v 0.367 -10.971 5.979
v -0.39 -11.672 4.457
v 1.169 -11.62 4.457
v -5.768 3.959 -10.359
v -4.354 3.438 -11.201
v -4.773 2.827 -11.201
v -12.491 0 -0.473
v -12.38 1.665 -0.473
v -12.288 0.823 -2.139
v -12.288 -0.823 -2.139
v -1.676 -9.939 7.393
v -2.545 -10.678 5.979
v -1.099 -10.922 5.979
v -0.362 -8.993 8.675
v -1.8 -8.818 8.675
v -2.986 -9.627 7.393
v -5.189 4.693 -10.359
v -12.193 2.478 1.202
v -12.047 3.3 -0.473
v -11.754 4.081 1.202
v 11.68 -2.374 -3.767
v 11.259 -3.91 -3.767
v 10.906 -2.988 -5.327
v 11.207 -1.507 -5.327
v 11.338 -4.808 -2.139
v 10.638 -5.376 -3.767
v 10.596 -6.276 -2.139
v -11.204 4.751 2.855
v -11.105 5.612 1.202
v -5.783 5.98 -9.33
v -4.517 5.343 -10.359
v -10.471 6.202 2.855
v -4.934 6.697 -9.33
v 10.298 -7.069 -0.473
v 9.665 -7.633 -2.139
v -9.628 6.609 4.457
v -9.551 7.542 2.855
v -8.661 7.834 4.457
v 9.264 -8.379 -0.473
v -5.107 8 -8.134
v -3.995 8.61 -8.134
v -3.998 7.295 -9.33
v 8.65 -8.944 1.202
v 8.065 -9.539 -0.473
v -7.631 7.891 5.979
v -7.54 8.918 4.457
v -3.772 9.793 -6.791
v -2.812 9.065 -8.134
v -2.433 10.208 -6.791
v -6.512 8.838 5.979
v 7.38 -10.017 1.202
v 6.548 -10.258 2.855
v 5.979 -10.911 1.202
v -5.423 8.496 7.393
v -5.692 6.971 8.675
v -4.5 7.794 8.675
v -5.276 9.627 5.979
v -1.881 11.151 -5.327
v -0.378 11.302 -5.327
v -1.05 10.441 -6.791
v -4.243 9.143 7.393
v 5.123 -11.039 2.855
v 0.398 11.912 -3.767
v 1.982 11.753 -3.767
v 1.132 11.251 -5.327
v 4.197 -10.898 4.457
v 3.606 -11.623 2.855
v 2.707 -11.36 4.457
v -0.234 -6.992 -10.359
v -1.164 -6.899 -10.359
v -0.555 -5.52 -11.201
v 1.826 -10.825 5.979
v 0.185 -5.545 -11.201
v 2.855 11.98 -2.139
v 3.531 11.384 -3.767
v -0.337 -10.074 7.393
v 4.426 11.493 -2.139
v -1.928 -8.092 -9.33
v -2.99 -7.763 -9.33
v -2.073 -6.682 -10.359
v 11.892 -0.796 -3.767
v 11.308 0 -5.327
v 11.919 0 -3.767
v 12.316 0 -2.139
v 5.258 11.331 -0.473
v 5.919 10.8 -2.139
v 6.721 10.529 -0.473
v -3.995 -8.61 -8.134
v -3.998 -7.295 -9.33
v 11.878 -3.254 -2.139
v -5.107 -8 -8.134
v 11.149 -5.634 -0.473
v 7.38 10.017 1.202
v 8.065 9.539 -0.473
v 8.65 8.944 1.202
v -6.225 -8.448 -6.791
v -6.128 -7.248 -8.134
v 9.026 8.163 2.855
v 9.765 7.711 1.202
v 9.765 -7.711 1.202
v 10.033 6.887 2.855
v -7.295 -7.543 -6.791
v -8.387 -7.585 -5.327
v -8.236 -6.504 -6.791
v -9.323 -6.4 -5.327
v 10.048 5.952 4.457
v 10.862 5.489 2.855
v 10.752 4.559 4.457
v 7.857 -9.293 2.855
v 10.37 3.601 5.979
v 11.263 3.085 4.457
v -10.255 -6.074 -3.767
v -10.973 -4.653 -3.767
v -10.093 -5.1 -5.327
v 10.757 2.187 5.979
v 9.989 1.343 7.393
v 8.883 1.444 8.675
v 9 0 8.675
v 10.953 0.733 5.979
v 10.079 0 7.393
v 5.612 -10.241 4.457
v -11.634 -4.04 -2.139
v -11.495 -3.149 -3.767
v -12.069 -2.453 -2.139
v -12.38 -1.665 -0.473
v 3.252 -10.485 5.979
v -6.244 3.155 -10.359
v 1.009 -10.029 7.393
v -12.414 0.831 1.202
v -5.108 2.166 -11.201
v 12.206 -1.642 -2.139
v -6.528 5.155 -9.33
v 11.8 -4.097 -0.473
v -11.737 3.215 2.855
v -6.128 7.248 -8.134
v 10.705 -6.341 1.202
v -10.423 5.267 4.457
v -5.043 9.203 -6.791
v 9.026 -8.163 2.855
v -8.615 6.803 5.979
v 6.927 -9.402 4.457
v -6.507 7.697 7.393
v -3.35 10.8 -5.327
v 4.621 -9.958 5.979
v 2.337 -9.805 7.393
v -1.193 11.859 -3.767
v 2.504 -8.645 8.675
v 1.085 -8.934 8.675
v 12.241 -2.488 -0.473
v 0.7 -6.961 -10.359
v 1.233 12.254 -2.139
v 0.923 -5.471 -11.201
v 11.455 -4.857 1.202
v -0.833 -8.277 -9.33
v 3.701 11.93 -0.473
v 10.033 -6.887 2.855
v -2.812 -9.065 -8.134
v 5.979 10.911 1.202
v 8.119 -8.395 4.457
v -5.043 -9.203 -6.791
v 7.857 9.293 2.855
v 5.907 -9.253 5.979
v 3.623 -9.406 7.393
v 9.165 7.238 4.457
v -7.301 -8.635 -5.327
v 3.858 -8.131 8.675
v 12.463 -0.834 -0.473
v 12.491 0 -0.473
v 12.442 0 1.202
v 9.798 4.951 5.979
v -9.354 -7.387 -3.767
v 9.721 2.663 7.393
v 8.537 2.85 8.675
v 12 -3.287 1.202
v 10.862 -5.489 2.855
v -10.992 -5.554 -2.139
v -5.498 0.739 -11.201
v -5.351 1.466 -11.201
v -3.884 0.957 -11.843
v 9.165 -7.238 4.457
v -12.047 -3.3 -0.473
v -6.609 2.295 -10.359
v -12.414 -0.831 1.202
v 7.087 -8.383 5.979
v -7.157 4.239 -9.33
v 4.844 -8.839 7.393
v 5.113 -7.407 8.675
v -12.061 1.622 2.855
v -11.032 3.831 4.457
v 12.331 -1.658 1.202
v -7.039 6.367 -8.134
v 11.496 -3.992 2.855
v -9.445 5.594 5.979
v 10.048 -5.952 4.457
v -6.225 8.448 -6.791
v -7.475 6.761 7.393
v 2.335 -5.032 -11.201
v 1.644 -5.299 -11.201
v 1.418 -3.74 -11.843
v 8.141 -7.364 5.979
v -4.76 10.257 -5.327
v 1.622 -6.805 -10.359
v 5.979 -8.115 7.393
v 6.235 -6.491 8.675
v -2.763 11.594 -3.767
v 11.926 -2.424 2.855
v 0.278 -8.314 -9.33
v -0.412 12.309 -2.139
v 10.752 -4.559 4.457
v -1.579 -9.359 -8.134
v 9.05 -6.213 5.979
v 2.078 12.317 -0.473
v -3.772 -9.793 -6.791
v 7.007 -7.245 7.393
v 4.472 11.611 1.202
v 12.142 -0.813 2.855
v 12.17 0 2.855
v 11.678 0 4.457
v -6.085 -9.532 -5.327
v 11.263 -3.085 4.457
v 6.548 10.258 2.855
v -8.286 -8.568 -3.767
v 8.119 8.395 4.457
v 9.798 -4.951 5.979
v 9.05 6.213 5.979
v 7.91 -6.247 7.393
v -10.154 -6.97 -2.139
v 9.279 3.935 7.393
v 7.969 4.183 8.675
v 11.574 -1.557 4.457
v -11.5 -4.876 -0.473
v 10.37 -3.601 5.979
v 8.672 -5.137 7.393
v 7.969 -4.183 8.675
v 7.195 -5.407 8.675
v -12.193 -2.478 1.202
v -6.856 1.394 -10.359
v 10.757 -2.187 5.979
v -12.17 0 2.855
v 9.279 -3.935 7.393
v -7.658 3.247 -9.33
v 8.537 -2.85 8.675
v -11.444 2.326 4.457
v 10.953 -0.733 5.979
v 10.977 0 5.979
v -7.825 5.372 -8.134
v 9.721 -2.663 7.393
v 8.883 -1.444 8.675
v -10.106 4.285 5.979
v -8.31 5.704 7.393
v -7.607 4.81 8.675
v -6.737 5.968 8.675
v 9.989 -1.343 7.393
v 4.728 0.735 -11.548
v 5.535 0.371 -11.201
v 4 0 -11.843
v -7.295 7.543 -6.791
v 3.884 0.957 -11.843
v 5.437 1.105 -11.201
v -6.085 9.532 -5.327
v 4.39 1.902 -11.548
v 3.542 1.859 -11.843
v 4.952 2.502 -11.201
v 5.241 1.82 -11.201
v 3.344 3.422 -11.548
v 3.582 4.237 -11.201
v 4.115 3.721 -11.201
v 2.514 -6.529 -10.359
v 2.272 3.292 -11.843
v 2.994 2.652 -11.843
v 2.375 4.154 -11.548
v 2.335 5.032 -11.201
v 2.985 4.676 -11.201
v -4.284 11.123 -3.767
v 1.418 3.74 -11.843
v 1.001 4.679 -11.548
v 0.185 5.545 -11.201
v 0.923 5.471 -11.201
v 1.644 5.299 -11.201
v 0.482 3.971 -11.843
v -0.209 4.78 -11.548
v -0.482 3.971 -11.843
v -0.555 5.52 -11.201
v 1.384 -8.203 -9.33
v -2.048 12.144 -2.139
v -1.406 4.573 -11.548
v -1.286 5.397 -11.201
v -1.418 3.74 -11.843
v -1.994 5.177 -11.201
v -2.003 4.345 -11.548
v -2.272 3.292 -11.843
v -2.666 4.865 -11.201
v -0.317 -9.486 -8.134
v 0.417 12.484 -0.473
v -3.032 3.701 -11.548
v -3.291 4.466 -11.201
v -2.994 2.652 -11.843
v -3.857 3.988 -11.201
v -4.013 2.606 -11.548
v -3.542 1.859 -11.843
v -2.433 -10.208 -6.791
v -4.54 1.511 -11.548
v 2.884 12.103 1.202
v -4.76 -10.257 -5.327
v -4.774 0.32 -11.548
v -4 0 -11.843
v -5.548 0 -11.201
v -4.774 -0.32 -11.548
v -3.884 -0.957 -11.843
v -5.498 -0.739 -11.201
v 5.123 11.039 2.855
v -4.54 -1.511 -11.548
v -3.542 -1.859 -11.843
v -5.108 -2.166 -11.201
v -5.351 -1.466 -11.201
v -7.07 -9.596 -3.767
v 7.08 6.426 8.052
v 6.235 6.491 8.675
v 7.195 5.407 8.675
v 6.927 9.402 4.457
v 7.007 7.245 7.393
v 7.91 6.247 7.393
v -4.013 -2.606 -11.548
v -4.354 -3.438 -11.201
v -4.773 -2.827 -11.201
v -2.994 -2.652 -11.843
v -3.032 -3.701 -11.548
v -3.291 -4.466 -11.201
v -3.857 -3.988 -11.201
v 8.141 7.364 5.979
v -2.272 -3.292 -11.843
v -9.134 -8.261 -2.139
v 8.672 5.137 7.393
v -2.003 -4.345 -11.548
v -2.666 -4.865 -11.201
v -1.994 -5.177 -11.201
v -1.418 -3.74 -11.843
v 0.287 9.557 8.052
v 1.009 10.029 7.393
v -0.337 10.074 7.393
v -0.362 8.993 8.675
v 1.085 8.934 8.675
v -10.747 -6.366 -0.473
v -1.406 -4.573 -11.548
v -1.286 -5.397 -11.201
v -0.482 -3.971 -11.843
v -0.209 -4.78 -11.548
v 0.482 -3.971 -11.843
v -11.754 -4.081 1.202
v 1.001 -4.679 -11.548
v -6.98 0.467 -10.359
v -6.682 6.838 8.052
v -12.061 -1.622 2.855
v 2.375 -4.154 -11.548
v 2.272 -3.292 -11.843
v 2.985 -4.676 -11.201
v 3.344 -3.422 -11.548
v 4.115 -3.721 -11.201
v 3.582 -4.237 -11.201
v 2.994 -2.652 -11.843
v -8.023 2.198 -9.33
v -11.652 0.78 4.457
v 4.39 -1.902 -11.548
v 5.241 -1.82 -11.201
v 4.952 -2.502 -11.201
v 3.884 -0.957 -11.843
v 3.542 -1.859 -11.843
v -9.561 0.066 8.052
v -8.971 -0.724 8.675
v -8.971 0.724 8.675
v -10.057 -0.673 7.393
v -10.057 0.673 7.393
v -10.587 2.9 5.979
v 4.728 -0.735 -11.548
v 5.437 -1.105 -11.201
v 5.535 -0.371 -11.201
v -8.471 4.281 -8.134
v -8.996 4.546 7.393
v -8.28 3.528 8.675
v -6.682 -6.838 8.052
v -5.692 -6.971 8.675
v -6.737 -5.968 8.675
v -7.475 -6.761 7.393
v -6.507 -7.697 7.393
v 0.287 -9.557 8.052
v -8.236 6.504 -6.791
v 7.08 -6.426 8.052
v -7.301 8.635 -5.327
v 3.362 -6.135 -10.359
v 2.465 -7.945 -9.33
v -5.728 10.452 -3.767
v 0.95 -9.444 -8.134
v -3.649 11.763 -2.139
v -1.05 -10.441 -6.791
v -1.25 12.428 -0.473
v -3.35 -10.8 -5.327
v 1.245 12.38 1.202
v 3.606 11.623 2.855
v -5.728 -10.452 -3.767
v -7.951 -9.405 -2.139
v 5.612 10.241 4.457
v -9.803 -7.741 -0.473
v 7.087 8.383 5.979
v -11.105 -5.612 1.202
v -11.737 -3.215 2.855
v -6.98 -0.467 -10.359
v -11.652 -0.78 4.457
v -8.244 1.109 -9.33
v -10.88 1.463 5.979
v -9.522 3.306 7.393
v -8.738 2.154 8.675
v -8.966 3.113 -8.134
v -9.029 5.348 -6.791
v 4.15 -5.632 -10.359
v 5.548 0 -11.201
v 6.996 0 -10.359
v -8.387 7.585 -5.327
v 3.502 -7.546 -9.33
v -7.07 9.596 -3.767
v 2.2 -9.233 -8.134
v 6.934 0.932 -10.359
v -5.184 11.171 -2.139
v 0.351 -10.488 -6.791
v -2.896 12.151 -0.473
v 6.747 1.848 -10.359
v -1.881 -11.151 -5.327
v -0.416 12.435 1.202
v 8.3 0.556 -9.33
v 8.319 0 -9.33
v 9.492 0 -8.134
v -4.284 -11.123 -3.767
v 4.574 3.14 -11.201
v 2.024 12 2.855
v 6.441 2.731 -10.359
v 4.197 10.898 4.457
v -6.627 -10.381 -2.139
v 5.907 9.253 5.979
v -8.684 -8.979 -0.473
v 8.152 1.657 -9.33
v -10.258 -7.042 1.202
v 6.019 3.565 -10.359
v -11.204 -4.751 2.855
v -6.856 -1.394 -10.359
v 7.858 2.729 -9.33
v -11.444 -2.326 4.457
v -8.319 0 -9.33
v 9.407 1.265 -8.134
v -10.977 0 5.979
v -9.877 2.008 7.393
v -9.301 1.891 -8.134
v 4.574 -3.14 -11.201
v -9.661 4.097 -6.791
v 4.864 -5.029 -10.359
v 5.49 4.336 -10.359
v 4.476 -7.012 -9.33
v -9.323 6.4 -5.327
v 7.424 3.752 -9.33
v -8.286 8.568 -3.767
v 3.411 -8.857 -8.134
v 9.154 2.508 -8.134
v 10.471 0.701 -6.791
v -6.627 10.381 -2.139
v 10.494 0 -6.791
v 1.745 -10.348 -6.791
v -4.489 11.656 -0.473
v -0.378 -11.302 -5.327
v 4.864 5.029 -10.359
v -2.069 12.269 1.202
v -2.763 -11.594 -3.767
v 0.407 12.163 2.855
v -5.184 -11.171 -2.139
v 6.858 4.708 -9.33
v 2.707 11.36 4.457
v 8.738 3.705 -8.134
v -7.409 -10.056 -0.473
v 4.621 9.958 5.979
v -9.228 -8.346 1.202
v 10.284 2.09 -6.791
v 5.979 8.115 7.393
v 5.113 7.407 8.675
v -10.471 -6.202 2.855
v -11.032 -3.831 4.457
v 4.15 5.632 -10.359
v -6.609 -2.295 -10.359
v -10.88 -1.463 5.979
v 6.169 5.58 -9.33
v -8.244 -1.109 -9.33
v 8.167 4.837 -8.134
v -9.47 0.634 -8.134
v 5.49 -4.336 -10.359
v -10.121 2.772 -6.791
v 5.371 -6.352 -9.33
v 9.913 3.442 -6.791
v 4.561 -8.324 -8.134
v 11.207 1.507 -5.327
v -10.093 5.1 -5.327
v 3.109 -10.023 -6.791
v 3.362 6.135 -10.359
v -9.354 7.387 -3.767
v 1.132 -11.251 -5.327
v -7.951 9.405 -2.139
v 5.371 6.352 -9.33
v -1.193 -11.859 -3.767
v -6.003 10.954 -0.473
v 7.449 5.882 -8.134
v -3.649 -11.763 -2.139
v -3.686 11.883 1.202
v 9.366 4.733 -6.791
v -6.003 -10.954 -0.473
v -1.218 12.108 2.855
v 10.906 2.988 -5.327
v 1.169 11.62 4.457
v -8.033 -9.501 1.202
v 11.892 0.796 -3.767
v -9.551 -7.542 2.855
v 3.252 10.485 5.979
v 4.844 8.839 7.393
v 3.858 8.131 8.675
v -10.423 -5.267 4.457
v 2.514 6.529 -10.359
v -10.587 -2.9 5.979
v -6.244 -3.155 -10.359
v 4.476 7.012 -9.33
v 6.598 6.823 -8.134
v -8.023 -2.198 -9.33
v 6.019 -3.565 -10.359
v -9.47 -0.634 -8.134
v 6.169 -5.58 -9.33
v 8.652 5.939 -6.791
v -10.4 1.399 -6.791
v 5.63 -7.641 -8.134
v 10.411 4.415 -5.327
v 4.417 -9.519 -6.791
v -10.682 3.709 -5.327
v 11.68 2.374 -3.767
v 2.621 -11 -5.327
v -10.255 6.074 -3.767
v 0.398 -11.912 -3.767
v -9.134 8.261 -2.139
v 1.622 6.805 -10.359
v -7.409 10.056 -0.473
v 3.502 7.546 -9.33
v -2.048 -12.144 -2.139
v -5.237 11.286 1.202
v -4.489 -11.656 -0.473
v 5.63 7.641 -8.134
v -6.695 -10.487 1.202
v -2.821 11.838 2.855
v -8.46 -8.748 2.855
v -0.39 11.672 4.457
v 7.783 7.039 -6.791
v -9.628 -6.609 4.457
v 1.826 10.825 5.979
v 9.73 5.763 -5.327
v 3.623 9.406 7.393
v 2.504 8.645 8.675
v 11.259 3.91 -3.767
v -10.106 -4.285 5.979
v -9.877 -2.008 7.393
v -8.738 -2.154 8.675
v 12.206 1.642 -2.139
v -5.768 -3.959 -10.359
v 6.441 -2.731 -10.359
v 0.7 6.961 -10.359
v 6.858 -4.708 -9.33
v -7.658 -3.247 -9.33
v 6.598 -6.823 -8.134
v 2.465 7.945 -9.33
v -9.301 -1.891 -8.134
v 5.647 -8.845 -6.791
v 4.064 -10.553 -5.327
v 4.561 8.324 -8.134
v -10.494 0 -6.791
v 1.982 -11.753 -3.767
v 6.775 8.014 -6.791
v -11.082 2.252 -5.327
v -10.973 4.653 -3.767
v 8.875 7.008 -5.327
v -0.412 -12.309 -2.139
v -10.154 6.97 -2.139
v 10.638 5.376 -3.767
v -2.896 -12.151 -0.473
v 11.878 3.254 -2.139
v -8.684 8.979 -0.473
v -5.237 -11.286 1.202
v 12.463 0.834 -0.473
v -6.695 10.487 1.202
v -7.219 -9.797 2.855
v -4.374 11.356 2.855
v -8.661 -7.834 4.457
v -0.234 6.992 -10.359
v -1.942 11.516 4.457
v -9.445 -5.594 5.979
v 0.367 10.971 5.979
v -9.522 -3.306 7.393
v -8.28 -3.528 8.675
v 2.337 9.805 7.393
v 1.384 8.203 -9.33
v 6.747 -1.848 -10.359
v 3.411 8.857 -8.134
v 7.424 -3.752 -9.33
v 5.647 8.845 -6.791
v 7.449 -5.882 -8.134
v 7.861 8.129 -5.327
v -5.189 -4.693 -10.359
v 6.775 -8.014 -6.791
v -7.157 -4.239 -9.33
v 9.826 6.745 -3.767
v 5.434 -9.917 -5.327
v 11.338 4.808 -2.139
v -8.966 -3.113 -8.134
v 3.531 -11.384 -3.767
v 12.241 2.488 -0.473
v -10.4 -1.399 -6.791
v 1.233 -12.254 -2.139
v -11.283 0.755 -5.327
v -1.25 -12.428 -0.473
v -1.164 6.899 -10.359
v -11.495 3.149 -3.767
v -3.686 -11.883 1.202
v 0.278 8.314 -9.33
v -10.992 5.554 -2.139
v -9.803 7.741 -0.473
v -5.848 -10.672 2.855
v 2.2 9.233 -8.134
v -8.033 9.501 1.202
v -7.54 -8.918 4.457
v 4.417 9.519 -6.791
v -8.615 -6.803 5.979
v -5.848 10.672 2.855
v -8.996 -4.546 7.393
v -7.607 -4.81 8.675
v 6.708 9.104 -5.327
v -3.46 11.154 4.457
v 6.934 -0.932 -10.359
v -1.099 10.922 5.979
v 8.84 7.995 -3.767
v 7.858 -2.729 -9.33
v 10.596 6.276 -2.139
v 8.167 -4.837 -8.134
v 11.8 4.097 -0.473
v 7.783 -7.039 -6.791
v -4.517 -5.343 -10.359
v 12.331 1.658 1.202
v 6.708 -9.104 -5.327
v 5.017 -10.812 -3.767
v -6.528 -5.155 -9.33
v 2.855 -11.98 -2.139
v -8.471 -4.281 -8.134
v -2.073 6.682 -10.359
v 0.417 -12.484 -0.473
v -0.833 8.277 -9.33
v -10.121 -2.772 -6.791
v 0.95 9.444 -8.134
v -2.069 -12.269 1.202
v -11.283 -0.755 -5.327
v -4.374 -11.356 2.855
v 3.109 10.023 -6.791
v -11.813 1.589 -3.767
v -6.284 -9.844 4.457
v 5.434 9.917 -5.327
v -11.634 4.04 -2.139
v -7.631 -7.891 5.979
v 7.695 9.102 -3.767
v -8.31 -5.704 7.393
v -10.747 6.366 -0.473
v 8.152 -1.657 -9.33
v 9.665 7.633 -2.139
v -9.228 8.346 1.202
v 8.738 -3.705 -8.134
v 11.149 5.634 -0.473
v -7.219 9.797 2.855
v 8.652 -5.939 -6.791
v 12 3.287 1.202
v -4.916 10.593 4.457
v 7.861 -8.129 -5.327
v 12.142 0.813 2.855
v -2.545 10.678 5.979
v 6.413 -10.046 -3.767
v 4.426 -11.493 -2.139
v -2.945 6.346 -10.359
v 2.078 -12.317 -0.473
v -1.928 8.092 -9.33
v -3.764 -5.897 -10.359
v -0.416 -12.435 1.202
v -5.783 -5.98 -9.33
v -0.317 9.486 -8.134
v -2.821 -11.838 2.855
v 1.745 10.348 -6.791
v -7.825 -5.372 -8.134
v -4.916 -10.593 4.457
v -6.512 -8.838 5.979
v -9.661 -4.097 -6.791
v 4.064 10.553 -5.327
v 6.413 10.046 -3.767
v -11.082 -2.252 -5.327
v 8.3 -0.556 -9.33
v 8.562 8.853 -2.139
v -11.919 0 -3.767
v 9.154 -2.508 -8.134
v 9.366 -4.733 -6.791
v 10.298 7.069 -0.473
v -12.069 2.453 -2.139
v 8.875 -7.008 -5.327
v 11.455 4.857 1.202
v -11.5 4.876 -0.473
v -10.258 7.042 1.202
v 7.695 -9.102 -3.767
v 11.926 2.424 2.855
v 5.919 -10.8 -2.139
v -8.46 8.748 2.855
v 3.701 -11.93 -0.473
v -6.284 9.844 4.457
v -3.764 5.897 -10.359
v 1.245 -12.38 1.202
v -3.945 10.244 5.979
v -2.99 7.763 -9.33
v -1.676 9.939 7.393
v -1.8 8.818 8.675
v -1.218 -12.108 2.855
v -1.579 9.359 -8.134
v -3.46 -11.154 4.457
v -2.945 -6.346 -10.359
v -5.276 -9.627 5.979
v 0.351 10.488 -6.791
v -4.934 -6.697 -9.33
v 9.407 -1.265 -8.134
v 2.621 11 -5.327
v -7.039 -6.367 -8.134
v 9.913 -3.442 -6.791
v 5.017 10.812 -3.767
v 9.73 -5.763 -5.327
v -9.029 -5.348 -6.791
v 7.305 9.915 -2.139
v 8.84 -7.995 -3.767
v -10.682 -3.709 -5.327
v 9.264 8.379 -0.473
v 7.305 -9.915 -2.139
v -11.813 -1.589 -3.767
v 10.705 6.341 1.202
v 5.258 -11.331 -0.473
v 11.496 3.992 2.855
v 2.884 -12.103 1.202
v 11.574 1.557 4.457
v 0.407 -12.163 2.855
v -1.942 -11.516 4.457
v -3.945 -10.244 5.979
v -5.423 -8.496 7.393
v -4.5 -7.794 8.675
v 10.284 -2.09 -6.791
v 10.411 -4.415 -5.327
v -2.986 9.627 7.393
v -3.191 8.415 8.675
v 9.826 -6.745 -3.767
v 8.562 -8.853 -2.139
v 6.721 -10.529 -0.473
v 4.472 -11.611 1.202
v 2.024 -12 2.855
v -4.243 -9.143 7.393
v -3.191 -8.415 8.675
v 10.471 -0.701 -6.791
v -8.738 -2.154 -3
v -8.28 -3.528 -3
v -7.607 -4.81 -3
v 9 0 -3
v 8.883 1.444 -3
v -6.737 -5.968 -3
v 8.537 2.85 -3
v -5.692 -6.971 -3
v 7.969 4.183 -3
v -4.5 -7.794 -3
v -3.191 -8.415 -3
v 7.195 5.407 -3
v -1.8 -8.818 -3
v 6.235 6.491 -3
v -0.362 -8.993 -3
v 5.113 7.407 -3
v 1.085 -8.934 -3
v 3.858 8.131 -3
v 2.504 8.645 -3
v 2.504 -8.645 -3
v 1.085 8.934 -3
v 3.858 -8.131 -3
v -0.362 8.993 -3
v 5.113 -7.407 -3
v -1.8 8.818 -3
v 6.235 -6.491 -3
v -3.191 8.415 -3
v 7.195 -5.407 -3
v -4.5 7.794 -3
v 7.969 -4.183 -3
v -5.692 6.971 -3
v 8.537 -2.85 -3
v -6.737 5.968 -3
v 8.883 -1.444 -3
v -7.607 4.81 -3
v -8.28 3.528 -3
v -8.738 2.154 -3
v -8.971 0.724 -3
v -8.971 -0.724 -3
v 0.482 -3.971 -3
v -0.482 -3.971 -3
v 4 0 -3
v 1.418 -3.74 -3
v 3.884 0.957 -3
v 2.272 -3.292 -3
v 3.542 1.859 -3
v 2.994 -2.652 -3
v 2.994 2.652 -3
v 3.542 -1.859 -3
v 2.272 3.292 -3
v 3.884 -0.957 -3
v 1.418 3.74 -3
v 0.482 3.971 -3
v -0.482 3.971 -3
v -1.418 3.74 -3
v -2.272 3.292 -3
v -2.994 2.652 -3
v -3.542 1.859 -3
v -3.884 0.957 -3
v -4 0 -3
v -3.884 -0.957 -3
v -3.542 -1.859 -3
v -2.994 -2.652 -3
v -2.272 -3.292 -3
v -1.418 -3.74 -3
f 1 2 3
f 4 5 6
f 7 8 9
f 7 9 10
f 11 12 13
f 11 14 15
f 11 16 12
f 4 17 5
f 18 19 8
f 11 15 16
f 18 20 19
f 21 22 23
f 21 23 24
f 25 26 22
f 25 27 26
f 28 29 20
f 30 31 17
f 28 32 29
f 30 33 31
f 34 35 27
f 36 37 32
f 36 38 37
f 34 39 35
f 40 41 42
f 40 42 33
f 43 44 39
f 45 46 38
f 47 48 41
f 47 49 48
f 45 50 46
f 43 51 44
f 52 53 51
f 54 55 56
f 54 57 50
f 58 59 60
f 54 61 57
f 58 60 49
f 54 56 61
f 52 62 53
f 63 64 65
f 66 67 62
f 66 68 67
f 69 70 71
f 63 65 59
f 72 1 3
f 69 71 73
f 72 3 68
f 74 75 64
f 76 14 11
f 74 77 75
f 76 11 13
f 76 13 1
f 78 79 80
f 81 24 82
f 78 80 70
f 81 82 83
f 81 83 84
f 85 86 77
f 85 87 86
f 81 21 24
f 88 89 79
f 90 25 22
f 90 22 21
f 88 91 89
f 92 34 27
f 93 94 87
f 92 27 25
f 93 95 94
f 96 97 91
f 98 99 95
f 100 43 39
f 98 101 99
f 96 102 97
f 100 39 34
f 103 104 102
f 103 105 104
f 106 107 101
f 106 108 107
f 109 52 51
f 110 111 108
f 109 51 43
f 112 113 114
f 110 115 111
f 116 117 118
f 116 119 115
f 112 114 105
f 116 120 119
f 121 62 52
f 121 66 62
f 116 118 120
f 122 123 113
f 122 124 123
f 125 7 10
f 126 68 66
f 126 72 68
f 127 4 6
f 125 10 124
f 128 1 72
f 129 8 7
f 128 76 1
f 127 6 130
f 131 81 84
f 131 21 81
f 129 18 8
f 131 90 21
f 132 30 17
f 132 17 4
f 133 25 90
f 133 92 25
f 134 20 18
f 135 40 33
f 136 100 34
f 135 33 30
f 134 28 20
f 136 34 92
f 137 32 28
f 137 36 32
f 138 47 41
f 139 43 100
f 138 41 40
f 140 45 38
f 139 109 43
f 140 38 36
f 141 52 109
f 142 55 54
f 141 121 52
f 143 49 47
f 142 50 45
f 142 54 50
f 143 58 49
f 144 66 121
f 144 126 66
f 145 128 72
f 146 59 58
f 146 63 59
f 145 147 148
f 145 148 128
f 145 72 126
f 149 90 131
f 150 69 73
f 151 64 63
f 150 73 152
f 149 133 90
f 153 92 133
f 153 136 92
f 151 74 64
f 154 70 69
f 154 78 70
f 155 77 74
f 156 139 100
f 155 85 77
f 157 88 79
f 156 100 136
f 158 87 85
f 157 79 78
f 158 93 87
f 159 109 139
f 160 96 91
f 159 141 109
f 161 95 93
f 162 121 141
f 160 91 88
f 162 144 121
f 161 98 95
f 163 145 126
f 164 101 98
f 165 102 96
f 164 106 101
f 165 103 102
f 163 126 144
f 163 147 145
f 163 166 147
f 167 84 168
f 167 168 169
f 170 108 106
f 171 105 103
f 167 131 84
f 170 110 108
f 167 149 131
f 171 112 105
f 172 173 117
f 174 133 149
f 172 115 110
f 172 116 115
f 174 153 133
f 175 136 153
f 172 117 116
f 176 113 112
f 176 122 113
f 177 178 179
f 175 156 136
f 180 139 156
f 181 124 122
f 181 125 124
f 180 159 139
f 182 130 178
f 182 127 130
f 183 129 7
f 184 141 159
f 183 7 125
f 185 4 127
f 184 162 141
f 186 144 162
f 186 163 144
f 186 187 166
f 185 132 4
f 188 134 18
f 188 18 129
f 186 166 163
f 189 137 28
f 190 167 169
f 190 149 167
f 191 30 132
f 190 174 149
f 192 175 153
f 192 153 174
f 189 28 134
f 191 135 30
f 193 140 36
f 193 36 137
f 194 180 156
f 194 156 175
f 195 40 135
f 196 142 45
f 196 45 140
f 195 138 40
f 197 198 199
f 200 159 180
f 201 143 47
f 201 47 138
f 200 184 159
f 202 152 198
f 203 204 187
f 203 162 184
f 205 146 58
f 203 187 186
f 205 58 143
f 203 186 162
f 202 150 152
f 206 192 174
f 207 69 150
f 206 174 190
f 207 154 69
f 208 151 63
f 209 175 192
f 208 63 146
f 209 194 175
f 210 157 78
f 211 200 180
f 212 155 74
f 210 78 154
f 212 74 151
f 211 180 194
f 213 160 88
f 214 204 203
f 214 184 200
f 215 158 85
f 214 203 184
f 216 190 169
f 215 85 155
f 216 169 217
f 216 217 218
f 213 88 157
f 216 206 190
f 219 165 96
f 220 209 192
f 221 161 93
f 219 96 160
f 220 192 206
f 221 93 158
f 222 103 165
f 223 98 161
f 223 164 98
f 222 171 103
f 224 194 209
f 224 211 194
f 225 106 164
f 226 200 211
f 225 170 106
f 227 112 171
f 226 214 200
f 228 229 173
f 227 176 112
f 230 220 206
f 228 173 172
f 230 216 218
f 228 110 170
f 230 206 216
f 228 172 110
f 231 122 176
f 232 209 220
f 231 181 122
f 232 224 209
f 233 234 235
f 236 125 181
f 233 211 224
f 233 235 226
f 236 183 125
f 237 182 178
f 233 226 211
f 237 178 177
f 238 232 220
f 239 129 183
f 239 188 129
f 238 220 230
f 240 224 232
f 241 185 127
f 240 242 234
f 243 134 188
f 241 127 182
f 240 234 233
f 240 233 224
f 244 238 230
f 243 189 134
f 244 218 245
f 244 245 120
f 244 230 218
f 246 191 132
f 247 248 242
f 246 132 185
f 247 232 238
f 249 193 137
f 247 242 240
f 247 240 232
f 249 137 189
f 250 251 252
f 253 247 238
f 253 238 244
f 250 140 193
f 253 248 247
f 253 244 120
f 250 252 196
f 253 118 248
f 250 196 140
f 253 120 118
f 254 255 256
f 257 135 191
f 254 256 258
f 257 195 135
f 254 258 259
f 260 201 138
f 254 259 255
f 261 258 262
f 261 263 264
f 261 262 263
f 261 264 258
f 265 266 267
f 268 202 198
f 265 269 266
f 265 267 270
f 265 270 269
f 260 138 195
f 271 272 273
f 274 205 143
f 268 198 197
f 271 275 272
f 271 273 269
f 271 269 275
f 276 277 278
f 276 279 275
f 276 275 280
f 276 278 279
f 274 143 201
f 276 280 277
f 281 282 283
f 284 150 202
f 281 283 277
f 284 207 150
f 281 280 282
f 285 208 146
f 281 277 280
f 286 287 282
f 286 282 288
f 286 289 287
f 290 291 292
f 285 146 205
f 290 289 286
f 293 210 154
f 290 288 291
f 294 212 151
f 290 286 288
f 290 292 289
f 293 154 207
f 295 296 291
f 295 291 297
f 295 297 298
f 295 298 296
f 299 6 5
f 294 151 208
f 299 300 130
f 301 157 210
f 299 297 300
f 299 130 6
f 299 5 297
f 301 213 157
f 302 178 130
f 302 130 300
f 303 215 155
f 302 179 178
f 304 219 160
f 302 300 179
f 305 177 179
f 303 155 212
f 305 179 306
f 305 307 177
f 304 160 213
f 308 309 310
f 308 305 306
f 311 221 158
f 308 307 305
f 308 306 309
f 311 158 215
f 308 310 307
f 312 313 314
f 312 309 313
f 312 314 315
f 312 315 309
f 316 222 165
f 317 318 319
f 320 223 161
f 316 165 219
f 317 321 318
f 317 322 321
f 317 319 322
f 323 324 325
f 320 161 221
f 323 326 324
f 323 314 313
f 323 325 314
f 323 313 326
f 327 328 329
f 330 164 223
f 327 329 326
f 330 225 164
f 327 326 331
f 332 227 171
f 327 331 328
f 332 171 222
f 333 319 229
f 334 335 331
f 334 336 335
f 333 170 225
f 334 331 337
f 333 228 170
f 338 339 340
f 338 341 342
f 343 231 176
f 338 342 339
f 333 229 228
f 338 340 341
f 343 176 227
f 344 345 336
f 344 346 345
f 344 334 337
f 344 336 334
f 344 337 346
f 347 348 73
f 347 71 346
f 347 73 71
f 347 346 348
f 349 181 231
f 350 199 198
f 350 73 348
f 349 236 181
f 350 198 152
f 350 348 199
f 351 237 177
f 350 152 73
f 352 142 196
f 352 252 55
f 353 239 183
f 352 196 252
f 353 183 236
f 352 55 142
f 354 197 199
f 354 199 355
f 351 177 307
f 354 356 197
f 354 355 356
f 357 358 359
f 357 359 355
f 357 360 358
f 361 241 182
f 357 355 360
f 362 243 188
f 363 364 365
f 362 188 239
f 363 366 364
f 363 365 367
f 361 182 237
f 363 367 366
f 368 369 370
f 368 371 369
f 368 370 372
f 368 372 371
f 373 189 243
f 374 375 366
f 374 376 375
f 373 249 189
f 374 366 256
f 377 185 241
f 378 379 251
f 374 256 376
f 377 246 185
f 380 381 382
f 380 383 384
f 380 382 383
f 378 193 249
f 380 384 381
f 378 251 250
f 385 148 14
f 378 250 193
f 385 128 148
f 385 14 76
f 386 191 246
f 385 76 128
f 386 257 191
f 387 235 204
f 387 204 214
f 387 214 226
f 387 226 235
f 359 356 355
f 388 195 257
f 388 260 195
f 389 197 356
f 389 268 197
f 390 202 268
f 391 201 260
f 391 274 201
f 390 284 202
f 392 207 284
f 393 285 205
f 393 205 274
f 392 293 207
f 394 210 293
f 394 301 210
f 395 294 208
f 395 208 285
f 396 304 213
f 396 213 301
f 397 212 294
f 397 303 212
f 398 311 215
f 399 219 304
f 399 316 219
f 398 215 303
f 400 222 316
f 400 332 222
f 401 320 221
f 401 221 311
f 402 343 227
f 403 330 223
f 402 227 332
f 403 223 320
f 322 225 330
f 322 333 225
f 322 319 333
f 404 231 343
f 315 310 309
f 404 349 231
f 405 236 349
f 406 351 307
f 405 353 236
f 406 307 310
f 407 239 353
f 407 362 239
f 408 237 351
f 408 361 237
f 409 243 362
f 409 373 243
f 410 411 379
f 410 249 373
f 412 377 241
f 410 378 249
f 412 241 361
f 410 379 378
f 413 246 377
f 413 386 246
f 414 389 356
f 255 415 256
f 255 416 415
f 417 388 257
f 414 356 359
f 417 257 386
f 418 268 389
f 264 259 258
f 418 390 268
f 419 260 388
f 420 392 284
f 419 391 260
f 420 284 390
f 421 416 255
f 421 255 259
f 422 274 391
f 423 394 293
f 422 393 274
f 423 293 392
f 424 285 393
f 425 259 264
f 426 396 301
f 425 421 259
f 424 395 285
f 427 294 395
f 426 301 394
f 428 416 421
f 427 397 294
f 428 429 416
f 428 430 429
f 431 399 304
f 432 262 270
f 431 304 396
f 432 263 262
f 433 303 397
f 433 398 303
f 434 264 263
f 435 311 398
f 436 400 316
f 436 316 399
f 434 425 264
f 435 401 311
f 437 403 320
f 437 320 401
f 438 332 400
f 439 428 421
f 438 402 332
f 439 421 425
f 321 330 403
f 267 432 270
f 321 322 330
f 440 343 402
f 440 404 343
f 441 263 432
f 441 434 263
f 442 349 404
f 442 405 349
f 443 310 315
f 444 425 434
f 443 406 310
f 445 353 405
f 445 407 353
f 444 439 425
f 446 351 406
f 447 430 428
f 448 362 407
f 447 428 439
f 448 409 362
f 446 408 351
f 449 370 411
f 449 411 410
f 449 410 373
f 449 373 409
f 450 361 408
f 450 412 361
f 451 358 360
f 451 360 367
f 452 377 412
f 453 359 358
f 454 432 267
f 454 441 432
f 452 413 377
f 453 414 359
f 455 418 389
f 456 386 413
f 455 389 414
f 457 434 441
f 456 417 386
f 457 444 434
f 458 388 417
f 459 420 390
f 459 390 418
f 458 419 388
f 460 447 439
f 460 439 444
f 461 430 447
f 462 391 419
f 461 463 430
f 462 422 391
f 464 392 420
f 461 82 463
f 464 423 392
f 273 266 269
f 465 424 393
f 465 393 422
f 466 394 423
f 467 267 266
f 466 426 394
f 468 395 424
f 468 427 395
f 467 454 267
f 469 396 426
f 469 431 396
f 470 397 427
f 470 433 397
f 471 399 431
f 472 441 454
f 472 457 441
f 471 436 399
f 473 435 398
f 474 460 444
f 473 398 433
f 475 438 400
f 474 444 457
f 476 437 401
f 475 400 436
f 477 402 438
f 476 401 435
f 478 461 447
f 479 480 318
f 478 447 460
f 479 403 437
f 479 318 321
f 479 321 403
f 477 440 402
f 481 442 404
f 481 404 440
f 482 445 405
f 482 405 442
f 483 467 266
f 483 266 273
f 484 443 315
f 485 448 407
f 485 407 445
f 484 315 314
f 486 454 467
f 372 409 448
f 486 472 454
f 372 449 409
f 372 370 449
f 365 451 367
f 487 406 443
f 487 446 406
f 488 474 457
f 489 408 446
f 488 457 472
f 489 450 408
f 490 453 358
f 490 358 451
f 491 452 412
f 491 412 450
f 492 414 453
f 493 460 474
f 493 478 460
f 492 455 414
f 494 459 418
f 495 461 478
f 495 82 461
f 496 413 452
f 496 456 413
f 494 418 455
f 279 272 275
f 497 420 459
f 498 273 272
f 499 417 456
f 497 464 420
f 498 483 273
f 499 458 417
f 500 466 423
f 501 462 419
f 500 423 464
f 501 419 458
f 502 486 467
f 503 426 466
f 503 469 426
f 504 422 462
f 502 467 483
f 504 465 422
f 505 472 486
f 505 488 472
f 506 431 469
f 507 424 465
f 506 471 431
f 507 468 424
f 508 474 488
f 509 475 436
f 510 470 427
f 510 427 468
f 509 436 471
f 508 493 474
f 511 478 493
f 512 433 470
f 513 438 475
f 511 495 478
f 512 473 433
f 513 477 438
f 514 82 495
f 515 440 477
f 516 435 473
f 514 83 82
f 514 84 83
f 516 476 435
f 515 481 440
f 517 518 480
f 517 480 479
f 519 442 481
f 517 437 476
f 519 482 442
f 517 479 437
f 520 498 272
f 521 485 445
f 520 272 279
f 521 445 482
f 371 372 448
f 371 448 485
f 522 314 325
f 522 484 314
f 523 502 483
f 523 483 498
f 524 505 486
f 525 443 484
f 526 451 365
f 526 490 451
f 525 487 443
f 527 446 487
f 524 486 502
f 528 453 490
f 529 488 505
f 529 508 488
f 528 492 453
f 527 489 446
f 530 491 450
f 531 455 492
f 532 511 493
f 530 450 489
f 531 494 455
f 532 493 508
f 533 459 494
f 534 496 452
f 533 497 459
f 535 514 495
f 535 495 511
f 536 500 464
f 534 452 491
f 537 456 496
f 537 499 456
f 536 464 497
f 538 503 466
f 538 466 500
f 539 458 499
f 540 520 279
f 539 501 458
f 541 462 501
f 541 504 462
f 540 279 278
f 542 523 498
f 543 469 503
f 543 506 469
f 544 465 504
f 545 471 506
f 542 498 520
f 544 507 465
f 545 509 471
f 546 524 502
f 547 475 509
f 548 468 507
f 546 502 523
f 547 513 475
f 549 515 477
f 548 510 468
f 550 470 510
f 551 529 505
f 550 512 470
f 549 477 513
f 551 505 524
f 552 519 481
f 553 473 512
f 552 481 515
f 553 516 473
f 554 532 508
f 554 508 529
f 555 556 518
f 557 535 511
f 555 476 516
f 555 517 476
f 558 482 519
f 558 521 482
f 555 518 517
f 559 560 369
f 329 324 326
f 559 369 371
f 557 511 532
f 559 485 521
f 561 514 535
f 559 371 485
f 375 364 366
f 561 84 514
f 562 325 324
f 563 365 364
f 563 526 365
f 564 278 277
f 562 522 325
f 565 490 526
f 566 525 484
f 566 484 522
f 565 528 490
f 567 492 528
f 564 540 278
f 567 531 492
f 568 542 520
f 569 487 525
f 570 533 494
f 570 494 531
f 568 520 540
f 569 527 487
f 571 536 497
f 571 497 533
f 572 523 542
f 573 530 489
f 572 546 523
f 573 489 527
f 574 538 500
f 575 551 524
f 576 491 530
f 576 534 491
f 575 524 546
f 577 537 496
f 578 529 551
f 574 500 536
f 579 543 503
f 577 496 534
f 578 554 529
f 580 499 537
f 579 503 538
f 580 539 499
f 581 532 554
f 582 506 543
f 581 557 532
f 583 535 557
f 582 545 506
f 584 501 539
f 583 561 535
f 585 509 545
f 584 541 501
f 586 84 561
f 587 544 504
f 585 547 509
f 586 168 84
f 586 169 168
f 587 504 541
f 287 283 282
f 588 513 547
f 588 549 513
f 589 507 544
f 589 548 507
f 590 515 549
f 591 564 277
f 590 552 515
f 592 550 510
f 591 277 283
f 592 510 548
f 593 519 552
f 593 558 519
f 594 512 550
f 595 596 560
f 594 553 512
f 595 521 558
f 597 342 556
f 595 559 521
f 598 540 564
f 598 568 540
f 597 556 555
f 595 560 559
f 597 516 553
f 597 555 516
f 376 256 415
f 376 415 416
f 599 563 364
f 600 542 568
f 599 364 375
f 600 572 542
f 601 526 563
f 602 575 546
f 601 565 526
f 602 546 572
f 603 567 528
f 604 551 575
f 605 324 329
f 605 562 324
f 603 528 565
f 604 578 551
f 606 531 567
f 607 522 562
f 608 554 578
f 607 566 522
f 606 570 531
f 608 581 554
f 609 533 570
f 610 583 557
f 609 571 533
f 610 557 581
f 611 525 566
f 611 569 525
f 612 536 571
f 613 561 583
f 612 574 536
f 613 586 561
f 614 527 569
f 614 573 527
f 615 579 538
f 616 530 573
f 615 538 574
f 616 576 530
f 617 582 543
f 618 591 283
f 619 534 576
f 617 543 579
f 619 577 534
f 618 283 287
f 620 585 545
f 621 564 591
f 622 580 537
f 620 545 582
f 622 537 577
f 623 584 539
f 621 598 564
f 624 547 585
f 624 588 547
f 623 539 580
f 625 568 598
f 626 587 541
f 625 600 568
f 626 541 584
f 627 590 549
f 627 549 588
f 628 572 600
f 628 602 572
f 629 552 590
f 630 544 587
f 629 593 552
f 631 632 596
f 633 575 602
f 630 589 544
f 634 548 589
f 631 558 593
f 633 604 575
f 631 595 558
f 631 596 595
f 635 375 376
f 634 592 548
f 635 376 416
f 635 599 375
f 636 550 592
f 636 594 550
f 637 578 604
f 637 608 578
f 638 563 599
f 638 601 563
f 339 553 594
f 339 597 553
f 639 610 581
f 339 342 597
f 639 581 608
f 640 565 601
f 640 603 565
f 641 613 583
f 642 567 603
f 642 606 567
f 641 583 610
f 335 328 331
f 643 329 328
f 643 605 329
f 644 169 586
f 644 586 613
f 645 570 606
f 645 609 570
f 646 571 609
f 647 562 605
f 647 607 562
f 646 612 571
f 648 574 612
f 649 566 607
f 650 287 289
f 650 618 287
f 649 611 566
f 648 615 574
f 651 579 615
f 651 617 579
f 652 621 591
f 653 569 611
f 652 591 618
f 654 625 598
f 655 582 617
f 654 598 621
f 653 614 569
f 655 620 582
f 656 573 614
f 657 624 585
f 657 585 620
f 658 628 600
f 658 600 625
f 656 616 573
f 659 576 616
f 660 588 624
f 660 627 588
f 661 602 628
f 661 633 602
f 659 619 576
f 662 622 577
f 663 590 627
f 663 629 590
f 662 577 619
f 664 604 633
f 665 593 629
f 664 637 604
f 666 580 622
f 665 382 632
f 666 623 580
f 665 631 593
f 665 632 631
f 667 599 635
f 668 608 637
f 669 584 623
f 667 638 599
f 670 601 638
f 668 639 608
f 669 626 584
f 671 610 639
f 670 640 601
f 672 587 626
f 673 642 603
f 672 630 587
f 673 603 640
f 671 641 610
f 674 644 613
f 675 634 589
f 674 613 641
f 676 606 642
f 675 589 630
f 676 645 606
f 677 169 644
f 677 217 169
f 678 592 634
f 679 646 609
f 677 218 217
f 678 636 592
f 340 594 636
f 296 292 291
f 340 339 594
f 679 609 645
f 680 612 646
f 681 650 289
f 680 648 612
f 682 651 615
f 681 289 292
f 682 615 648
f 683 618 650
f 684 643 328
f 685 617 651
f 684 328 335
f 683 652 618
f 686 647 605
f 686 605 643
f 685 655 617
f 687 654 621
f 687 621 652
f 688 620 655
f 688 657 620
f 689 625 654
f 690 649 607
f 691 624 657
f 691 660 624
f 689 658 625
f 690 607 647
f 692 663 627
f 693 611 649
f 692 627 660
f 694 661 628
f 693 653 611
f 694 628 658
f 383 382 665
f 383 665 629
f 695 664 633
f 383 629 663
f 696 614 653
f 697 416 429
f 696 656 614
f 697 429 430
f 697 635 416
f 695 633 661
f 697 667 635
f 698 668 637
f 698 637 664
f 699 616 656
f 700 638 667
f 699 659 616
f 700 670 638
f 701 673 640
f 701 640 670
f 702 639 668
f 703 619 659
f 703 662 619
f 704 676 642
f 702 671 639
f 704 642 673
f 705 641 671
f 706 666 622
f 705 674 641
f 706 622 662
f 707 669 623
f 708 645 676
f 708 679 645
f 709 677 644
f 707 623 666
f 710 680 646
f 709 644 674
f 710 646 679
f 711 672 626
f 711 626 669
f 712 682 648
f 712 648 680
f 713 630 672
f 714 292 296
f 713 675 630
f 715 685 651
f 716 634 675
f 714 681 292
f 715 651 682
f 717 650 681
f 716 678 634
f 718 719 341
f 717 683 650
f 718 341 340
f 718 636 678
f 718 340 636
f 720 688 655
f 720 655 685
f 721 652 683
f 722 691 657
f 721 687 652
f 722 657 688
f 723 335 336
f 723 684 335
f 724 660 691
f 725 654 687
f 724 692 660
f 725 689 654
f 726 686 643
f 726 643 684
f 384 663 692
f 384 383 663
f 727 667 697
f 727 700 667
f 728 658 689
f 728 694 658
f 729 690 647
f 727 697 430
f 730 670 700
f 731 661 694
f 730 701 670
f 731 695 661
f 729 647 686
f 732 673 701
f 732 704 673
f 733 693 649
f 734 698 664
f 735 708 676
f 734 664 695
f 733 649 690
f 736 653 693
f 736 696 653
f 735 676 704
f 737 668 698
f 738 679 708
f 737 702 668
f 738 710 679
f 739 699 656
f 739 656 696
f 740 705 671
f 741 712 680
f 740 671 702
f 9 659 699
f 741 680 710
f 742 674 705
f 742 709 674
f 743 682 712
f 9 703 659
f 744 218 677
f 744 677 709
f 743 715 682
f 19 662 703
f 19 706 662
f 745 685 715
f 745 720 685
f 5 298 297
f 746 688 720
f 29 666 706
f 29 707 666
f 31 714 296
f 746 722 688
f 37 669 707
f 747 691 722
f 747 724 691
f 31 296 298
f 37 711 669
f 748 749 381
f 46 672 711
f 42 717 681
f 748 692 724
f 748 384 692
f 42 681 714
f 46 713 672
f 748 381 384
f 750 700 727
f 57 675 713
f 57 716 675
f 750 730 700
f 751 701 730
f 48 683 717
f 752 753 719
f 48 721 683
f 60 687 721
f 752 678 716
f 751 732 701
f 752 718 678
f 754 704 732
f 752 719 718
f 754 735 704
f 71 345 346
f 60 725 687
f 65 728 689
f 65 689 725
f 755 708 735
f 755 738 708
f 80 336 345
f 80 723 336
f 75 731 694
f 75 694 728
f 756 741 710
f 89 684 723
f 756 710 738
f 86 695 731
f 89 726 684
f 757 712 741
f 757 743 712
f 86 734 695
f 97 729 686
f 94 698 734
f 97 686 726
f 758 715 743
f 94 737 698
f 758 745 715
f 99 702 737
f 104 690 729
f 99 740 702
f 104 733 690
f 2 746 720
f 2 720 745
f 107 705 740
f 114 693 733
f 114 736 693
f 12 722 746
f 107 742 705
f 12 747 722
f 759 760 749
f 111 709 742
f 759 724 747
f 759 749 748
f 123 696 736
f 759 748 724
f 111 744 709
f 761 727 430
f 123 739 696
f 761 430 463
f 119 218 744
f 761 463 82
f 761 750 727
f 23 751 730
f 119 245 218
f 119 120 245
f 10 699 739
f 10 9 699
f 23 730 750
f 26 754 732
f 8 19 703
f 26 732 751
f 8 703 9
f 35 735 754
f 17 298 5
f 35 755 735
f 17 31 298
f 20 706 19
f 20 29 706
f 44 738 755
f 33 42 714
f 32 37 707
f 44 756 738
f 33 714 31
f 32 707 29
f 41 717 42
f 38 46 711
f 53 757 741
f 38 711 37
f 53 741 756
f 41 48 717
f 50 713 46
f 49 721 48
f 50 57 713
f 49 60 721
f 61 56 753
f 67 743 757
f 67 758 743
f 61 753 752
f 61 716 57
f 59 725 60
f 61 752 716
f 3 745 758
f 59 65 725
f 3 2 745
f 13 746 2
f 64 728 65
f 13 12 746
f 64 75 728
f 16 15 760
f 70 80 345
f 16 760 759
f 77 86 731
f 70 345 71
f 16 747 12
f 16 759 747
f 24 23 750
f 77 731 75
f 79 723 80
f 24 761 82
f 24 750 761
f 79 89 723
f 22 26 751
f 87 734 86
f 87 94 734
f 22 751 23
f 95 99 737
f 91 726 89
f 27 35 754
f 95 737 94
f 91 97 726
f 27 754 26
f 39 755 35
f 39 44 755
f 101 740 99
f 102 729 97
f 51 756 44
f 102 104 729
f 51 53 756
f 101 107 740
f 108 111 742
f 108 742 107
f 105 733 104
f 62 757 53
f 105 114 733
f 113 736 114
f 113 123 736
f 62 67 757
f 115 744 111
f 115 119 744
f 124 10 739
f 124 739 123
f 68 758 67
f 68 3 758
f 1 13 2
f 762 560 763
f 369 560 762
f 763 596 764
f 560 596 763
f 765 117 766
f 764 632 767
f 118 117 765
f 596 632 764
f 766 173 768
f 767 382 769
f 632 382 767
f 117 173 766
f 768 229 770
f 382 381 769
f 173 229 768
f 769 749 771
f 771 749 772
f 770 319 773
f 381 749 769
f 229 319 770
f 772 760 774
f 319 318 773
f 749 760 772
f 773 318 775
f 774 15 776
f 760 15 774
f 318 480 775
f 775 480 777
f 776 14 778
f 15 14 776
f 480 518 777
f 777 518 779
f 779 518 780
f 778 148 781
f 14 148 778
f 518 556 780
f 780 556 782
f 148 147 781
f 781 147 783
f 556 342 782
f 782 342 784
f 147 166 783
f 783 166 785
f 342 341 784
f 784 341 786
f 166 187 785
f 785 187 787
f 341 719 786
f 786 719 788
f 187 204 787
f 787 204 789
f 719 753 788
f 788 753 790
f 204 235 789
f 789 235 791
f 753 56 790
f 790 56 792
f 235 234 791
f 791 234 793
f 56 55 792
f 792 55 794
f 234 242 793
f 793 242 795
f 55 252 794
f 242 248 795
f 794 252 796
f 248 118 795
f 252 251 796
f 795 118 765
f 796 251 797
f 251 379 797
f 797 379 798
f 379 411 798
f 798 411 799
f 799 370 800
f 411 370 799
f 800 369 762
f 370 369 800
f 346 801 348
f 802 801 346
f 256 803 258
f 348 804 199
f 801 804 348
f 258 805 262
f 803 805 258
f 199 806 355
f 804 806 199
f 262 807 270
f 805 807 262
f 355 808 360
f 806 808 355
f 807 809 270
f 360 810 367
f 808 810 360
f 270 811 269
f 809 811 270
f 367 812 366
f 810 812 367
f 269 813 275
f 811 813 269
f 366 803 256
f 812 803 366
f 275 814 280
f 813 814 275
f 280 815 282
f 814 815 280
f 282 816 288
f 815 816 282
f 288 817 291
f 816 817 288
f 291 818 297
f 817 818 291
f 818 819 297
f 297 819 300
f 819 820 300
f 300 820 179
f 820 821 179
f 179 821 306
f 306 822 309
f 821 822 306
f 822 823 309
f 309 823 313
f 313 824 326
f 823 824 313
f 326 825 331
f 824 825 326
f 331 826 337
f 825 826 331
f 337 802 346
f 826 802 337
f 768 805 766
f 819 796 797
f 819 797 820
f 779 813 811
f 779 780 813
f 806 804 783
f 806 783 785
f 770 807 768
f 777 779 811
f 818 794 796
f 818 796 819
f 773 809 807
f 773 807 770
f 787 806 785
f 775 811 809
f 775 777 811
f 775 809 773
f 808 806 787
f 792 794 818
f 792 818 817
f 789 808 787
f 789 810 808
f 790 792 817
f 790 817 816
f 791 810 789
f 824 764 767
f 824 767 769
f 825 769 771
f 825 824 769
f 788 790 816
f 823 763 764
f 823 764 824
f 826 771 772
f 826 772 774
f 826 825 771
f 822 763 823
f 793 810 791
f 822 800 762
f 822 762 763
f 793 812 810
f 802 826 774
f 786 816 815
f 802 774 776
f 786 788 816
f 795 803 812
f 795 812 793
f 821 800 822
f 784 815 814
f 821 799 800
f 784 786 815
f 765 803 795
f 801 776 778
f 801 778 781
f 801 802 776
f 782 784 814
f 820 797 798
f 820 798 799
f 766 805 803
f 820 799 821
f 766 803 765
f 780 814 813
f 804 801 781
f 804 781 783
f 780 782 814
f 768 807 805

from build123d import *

# Parameters (mm, degrees)
CYLINDER001_R     = 9
CYLINDER001_DEPTH = 15
CYLINDER_R        = 4
CYLINDER_DEPTH    = 30


with BuildPart() as cylinder001:
    # Cylinder001 → Cylinder001 (new body)
    with BuildSketch(Plane.XY.offset(-3)):
        Circle(CYLINDER001_R)
    extrude(amount=CYLINDER001_DEPTH)


with BuildPart() as fusion:
    # Cylinder → Cylinder (new body)
    with BuildSketch(Plane.XY.offset(-15)):
        Circle(CYLINDER_R)
    extrude(amount=CYLINDER_DEPTH)

    # Fusion: union Cylinder001
    add(cylinder001.part)


with BuildPart() as final:
    # Sphere → Sphere (revolve)
    with BuildSketch(Plane.XZ):
        with BuildLine():
            ThreePointArc((0, -12.5), (12.5, 0), (0, 12.5))
            Line((0, 12.5), (0, -12.5))
        make_face()
    revolve(axis=Axis((0, 0, 0), (0, 0, 1)))

    # Cut: cut Fusion
    add(fusion.part, mode=Mode.SUBTRACT)


solid = final.part
